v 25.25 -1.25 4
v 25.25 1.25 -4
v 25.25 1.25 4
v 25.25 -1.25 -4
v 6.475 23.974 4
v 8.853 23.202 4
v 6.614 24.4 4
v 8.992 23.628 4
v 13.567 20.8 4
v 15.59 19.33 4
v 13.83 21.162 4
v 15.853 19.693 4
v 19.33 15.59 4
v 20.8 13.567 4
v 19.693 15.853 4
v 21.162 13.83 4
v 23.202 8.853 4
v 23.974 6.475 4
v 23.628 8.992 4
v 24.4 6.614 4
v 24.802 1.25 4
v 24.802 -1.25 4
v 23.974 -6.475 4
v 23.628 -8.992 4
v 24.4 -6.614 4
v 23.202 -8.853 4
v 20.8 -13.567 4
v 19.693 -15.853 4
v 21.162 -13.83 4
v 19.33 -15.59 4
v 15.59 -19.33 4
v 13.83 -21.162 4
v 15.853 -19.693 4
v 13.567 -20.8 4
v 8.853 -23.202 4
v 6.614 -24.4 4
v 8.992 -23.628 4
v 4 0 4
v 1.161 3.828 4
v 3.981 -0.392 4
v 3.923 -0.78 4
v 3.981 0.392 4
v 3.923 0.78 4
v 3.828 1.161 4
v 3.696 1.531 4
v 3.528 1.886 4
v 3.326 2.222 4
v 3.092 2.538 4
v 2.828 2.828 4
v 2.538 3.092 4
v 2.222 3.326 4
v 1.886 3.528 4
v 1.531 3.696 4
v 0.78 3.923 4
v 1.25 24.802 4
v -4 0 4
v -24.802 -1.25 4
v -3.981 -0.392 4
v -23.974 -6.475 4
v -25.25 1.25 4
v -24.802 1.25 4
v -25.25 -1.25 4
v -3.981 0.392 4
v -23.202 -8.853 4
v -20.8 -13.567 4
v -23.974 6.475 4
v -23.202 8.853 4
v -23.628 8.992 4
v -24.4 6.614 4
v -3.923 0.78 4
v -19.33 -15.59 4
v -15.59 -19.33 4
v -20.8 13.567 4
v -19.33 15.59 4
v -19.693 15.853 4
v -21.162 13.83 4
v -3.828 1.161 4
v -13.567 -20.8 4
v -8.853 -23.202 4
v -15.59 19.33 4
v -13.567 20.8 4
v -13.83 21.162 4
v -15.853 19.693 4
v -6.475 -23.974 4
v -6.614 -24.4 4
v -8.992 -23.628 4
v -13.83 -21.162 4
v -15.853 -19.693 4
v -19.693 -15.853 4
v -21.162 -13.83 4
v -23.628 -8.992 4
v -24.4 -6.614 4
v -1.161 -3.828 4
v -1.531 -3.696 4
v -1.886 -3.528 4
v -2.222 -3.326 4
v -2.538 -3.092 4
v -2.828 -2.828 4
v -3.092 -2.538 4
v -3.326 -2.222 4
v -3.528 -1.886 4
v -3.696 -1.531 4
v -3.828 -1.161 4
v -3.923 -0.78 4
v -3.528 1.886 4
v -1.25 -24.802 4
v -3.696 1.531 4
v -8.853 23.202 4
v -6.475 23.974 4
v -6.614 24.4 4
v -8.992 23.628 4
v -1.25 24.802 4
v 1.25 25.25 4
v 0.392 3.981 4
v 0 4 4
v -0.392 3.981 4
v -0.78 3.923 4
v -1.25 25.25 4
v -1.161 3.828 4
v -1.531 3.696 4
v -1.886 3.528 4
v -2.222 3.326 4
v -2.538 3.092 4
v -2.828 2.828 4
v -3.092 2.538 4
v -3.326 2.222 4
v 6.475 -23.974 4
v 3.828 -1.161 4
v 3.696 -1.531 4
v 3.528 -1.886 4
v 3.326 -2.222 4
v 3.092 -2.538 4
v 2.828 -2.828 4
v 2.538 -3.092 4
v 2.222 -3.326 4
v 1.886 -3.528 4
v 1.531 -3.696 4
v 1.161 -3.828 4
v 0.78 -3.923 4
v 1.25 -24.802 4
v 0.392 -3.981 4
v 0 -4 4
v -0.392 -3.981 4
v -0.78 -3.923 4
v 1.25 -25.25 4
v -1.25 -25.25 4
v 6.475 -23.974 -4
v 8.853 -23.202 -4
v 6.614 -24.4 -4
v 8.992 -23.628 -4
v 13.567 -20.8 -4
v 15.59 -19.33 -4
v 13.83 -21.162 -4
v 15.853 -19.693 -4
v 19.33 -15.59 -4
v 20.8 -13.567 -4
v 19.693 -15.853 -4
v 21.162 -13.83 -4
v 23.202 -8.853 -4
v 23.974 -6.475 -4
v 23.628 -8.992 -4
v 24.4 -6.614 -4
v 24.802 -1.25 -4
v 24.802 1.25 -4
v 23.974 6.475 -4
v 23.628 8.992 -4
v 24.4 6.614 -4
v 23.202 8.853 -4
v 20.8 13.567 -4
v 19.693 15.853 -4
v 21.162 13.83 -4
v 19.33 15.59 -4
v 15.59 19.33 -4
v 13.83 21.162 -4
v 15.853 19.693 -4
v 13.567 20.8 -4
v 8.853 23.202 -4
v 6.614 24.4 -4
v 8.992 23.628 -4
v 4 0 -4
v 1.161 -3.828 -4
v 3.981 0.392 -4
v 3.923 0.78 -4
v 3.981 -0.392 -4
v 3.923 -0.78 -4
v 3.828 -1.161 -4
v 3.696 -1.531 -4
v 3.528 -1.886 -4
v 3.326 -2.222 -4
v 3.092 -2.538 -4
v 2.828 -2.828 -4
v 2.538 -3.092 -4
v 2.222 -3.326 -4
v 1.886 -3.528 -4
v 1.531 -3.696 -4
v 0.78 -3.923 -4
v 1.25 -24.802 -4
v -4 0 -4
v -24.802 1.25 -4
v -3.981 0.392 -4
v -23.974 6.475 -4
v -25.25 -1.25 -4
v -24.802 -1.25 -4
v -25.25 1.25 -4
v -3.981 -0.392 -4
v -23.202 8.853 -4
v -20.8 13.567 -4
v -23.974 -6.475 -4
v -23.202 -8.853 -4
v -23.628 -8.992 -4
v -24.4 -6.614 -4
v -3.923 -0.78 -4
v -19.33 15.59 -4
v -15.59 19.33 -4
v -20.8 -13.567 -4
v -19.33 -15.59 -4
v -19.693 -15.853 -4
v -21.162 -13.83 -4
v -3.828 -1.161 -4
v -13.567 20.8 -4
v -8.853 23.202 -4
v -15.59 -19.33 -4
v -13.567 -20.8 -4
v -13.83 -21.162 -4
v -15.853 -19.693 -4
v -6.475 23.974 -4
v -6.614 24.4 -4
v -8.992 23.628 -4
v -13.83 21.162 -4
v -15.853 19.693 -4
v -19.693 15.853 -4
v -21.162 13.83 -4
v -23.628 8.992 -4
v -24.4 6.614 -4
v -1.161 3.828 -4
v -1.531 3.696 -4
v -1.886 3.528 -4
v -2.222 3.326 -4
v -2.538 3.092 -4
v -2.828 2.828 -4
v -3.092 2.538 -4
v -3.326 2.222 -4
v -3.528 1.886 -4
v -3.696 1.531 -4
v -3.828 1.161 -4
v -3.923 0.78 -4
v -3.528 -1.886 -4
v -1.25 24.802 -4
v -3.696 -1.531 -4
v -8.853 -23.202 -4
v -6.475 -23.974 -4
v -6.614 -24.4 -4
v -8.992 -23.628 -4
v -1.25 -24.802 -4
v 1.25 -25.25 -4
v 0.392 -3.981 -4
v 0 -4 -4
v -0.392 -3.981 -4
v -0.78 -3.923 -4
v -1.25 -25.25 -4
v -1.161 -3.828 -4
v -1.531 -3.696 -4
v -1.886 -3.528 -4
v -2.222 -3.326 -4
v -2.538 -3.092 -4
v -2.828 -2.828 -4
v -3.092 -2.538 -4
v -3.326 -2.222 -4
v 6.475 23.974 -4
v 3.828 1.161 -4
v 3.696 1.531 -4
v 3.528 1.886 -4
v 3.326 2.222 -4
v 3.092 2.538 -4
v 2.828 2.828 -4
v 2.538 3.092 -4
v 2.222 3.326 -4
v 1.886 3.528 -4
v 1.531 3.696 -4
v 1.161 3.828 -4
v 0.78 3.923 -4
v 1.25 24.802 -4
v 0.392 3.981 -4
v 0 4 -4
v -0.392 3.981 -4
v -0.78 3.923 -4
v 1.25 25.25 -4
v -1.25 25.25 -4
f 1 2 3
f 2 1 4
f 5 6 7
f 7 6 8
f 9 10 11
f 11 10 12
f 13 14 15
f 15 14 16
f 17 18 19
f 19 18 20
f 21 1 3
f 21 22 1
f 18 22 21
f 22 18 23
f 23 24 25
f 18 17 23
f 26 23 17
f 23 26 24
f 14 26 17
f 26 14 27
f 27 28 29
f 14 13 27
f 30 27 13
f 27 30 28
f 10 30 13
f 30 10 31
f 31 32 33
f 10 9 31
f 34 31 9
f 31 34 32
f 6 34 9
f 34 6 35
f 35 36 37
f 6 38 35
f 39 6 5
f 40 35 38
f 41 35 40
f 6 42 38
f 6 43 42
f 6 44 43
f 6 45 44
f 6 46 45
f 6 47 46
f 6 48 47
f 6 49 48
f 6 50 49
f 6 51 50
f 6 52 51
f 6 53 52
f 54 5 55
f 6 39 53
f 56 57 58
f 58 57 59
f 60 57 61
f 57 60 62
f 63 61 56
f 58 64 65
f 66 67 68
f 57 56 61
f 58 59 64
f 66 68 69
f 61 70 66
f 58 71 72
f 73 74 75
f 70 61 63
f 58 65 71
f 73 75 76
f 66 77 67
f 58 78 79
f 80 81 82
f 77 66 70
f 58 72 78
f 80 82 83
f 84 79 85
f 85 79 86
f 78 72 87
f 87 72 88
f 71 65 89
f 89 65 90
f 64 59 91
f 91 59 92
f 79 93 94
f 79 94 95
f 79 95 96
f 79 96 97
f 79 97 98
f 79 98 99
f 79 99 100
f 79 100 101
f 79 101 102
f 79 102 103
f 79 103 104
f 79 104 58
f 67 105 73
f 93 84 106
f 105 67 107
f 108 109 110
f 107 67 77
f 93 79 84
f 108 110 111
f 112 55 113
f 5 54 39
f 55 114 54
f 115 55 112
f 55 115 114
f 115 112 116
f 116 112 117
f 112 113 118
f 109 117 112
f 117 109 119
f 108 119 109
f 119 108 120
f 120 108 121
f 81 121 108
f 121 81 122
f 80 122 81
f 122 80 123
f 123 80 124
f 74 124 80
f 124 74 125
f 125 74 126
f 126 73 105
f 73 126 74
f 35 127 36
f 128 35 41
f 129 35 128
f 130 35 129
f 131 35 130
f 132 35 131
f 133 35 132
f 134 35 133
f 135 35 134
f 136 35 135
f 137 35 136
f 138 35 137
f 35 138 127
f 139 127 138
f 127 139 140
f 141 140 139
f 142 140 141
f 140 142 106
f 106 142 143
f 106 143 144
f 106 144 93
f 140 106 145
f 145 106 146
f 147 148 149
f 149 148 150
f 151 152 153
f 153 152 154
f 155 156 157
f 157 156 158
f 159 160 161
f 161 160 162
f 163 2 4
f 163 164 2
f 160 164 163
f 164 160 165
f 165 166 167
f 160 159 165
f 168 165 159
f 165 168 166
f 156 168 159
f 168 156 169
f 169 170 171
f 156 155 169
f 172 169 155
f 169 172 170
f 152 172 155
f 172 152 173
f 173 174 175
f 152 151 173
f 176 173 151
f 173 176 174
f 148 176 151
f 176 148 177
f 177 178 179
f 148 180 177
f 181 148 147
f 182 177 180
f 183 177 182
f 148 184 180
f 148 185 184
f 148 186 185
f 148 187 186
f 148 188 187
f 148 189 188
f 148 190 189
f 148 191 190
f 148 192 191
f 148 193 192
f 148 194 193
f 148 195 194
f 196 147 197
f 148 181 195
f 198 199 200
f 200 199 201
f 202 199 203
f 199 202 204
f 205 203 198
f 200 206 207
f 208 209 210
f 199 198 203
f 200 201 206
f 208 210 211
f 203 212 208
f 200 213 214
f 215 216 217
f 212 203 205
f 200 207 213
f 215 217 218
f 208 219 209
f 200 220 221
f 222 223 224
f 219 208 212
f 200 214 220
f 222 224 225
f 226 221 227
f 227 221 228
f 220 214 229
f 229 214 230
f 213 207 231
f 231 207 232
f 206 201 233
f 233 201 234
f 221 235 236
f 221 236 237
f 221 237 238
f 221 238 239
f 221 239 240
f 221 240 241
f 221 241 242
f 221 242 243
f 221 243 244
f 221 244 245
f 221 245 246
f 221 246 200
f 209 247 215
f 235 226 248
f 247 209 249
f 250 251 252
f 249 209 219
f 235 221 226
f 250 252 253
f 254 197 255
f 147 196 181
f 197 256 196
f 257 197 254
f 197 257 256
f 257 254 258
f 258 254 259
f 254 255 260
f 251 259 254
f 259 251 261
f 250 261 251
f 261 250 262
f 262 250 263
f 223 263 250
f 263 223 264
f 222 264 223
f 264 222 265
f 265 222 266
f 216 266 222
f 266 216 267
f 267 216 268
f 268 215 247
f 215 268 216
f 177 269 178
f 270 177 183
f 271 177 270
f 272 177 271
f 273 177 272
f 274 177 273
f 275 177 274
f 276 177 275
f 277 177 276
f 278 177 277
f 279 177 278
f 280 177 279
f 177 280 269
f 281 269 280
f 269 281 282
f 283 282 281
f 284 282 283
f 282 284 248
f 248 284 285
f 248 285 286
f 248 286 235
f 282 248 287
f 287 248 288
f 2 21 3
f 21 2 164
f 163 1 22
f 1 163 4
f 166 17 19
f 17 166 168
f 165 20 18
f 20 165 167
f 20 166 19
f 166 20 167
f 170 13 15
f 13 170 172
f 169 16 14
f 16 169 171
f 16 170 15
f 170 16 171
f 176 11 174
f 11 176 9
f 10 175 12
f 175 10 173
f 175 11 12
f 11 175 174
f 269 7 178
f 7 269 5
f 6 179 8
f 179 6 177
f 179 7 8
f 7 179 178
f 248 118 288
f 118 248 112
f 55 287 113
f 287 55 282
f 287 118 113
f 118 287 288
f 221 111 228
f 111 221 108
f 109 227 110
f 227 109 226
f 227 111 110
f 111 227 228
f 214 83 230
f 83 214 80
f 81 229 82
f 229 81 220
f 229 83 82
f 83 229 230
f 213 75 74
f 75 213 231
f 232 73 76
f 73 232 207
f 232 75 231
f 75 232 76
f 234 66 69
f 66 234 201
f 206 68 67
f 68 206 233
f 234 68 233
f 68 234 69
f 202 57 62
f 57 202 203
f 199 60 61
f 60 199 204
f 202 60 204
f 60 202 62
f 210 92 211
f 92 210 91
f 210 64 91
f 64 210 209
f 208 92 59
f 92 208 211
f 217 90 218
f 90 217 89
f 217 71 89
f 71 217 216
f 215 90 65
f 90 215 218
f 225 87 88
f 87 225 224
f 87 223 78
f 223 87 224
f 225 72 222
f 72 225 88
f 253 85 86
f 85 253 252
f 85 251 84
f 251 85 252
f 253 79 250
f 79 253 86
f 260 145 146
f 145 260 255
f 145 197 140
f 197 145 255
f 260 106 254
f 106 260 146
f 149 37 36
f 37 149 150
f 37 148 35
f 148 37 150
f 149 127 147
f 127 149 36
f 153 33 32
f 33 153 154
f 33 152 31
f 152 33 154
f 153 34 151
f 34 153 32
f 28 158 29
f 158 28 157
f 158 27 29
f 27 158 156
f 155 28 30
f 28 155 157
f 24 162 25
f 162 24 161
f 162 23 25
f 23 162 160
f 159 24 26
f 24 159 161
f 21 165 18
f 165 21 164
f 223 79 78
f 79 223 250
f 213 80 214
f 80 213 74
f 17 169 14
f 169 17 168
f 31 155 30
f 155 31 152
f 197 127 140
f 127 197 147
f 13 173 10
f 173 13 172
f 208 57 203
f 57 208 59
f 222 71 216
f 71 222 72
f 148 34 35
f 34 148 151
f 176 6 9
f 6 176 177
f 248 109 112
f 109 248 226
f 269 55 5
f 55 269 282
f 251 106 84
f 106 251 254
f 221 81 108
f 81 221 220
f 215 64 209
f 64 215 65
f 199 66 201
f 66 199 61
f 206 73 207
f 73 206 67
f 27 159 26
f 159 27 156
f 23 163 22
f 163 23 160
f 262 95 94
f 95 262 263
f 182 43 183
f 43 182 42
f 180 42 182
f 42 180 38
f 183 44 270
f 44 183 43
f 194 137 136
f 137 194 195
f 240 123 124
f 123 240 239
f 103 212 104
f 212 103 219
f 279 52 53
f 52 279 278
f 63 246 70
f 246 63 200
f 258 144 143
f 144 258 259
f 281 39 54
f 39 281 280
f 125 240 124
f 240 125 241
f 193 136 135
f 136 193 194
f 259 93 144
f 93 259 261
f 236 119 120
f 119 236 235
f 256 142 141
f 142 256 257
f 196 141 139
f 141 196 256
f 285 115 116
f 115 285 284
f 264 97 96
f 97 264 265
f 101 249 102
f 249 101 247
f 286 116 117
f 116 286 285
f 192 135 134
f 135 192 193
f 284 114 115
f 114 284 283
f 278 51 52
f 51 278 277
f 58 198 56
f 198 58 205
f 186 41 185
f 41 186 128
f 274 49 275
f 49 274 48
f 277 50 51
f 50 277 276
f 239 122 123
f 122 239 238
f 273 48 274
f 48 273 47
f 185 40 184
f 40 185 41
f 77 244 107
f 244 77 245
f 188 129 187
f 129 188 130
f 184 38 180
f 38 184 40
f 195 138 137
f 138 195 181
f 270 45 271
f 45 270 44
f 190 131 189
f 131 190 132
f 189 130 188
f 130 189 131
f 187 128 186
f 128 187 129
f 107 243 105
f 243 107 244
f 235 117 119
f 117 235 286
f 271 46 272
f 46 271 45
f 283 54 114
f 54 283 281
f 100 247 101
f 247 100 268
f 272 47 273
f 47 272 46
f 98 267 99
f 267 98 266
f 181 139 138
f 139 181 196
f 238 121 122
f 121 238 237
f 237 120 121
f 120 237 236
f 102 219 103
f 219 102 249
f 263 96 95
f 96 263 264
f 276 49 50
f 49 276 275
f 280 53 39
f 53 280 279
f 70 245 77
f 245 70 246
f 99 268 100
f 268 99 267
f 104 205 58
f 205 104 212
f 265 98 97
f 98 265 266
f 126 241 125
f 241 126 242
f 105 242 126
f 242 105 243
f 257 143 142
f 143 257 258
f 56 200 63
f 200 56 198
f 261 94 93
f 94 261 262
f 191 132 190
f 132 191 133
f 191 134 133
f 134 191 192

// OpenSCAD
// Generated by AgentSCAD
// Part Family: spur_gear
// Generated at: 2026-04-23T20:19:09.474Z

teeth = 20;
outer_diameter = 50;
bore_diameter = 8;
thickness = 8;
pressure_angle = 20;

module spur_gear(teeth, outer_diameter, bore_diameter, thickness, pressure_angle) {
  tooth_module = outer_diameter / teeth;
  pitch_diameter = outer_diameter - 2 * tooth_module;
  tooth_depth = tooth_module * 2.2;

  difference() {
    union() {
      cylinder(h=thickness, d=outer_diameter, $fn=teeth, center=true);
      for (i = [0:teeth-1]) {
        rotate([0, 0, i * 360 / teeth])
          translate([pitch_diameter/2, 0, 0])
            cube([tooth_depth, tooth_module, thickness], center=true);
      }
    }
    cylinder(h=thickness+2, d=bore_diameter, $fn=64, center=true);
  }
}

spur_gear(teeth, outer_diameter, bore_diameter, thickness, pressure_angle);
